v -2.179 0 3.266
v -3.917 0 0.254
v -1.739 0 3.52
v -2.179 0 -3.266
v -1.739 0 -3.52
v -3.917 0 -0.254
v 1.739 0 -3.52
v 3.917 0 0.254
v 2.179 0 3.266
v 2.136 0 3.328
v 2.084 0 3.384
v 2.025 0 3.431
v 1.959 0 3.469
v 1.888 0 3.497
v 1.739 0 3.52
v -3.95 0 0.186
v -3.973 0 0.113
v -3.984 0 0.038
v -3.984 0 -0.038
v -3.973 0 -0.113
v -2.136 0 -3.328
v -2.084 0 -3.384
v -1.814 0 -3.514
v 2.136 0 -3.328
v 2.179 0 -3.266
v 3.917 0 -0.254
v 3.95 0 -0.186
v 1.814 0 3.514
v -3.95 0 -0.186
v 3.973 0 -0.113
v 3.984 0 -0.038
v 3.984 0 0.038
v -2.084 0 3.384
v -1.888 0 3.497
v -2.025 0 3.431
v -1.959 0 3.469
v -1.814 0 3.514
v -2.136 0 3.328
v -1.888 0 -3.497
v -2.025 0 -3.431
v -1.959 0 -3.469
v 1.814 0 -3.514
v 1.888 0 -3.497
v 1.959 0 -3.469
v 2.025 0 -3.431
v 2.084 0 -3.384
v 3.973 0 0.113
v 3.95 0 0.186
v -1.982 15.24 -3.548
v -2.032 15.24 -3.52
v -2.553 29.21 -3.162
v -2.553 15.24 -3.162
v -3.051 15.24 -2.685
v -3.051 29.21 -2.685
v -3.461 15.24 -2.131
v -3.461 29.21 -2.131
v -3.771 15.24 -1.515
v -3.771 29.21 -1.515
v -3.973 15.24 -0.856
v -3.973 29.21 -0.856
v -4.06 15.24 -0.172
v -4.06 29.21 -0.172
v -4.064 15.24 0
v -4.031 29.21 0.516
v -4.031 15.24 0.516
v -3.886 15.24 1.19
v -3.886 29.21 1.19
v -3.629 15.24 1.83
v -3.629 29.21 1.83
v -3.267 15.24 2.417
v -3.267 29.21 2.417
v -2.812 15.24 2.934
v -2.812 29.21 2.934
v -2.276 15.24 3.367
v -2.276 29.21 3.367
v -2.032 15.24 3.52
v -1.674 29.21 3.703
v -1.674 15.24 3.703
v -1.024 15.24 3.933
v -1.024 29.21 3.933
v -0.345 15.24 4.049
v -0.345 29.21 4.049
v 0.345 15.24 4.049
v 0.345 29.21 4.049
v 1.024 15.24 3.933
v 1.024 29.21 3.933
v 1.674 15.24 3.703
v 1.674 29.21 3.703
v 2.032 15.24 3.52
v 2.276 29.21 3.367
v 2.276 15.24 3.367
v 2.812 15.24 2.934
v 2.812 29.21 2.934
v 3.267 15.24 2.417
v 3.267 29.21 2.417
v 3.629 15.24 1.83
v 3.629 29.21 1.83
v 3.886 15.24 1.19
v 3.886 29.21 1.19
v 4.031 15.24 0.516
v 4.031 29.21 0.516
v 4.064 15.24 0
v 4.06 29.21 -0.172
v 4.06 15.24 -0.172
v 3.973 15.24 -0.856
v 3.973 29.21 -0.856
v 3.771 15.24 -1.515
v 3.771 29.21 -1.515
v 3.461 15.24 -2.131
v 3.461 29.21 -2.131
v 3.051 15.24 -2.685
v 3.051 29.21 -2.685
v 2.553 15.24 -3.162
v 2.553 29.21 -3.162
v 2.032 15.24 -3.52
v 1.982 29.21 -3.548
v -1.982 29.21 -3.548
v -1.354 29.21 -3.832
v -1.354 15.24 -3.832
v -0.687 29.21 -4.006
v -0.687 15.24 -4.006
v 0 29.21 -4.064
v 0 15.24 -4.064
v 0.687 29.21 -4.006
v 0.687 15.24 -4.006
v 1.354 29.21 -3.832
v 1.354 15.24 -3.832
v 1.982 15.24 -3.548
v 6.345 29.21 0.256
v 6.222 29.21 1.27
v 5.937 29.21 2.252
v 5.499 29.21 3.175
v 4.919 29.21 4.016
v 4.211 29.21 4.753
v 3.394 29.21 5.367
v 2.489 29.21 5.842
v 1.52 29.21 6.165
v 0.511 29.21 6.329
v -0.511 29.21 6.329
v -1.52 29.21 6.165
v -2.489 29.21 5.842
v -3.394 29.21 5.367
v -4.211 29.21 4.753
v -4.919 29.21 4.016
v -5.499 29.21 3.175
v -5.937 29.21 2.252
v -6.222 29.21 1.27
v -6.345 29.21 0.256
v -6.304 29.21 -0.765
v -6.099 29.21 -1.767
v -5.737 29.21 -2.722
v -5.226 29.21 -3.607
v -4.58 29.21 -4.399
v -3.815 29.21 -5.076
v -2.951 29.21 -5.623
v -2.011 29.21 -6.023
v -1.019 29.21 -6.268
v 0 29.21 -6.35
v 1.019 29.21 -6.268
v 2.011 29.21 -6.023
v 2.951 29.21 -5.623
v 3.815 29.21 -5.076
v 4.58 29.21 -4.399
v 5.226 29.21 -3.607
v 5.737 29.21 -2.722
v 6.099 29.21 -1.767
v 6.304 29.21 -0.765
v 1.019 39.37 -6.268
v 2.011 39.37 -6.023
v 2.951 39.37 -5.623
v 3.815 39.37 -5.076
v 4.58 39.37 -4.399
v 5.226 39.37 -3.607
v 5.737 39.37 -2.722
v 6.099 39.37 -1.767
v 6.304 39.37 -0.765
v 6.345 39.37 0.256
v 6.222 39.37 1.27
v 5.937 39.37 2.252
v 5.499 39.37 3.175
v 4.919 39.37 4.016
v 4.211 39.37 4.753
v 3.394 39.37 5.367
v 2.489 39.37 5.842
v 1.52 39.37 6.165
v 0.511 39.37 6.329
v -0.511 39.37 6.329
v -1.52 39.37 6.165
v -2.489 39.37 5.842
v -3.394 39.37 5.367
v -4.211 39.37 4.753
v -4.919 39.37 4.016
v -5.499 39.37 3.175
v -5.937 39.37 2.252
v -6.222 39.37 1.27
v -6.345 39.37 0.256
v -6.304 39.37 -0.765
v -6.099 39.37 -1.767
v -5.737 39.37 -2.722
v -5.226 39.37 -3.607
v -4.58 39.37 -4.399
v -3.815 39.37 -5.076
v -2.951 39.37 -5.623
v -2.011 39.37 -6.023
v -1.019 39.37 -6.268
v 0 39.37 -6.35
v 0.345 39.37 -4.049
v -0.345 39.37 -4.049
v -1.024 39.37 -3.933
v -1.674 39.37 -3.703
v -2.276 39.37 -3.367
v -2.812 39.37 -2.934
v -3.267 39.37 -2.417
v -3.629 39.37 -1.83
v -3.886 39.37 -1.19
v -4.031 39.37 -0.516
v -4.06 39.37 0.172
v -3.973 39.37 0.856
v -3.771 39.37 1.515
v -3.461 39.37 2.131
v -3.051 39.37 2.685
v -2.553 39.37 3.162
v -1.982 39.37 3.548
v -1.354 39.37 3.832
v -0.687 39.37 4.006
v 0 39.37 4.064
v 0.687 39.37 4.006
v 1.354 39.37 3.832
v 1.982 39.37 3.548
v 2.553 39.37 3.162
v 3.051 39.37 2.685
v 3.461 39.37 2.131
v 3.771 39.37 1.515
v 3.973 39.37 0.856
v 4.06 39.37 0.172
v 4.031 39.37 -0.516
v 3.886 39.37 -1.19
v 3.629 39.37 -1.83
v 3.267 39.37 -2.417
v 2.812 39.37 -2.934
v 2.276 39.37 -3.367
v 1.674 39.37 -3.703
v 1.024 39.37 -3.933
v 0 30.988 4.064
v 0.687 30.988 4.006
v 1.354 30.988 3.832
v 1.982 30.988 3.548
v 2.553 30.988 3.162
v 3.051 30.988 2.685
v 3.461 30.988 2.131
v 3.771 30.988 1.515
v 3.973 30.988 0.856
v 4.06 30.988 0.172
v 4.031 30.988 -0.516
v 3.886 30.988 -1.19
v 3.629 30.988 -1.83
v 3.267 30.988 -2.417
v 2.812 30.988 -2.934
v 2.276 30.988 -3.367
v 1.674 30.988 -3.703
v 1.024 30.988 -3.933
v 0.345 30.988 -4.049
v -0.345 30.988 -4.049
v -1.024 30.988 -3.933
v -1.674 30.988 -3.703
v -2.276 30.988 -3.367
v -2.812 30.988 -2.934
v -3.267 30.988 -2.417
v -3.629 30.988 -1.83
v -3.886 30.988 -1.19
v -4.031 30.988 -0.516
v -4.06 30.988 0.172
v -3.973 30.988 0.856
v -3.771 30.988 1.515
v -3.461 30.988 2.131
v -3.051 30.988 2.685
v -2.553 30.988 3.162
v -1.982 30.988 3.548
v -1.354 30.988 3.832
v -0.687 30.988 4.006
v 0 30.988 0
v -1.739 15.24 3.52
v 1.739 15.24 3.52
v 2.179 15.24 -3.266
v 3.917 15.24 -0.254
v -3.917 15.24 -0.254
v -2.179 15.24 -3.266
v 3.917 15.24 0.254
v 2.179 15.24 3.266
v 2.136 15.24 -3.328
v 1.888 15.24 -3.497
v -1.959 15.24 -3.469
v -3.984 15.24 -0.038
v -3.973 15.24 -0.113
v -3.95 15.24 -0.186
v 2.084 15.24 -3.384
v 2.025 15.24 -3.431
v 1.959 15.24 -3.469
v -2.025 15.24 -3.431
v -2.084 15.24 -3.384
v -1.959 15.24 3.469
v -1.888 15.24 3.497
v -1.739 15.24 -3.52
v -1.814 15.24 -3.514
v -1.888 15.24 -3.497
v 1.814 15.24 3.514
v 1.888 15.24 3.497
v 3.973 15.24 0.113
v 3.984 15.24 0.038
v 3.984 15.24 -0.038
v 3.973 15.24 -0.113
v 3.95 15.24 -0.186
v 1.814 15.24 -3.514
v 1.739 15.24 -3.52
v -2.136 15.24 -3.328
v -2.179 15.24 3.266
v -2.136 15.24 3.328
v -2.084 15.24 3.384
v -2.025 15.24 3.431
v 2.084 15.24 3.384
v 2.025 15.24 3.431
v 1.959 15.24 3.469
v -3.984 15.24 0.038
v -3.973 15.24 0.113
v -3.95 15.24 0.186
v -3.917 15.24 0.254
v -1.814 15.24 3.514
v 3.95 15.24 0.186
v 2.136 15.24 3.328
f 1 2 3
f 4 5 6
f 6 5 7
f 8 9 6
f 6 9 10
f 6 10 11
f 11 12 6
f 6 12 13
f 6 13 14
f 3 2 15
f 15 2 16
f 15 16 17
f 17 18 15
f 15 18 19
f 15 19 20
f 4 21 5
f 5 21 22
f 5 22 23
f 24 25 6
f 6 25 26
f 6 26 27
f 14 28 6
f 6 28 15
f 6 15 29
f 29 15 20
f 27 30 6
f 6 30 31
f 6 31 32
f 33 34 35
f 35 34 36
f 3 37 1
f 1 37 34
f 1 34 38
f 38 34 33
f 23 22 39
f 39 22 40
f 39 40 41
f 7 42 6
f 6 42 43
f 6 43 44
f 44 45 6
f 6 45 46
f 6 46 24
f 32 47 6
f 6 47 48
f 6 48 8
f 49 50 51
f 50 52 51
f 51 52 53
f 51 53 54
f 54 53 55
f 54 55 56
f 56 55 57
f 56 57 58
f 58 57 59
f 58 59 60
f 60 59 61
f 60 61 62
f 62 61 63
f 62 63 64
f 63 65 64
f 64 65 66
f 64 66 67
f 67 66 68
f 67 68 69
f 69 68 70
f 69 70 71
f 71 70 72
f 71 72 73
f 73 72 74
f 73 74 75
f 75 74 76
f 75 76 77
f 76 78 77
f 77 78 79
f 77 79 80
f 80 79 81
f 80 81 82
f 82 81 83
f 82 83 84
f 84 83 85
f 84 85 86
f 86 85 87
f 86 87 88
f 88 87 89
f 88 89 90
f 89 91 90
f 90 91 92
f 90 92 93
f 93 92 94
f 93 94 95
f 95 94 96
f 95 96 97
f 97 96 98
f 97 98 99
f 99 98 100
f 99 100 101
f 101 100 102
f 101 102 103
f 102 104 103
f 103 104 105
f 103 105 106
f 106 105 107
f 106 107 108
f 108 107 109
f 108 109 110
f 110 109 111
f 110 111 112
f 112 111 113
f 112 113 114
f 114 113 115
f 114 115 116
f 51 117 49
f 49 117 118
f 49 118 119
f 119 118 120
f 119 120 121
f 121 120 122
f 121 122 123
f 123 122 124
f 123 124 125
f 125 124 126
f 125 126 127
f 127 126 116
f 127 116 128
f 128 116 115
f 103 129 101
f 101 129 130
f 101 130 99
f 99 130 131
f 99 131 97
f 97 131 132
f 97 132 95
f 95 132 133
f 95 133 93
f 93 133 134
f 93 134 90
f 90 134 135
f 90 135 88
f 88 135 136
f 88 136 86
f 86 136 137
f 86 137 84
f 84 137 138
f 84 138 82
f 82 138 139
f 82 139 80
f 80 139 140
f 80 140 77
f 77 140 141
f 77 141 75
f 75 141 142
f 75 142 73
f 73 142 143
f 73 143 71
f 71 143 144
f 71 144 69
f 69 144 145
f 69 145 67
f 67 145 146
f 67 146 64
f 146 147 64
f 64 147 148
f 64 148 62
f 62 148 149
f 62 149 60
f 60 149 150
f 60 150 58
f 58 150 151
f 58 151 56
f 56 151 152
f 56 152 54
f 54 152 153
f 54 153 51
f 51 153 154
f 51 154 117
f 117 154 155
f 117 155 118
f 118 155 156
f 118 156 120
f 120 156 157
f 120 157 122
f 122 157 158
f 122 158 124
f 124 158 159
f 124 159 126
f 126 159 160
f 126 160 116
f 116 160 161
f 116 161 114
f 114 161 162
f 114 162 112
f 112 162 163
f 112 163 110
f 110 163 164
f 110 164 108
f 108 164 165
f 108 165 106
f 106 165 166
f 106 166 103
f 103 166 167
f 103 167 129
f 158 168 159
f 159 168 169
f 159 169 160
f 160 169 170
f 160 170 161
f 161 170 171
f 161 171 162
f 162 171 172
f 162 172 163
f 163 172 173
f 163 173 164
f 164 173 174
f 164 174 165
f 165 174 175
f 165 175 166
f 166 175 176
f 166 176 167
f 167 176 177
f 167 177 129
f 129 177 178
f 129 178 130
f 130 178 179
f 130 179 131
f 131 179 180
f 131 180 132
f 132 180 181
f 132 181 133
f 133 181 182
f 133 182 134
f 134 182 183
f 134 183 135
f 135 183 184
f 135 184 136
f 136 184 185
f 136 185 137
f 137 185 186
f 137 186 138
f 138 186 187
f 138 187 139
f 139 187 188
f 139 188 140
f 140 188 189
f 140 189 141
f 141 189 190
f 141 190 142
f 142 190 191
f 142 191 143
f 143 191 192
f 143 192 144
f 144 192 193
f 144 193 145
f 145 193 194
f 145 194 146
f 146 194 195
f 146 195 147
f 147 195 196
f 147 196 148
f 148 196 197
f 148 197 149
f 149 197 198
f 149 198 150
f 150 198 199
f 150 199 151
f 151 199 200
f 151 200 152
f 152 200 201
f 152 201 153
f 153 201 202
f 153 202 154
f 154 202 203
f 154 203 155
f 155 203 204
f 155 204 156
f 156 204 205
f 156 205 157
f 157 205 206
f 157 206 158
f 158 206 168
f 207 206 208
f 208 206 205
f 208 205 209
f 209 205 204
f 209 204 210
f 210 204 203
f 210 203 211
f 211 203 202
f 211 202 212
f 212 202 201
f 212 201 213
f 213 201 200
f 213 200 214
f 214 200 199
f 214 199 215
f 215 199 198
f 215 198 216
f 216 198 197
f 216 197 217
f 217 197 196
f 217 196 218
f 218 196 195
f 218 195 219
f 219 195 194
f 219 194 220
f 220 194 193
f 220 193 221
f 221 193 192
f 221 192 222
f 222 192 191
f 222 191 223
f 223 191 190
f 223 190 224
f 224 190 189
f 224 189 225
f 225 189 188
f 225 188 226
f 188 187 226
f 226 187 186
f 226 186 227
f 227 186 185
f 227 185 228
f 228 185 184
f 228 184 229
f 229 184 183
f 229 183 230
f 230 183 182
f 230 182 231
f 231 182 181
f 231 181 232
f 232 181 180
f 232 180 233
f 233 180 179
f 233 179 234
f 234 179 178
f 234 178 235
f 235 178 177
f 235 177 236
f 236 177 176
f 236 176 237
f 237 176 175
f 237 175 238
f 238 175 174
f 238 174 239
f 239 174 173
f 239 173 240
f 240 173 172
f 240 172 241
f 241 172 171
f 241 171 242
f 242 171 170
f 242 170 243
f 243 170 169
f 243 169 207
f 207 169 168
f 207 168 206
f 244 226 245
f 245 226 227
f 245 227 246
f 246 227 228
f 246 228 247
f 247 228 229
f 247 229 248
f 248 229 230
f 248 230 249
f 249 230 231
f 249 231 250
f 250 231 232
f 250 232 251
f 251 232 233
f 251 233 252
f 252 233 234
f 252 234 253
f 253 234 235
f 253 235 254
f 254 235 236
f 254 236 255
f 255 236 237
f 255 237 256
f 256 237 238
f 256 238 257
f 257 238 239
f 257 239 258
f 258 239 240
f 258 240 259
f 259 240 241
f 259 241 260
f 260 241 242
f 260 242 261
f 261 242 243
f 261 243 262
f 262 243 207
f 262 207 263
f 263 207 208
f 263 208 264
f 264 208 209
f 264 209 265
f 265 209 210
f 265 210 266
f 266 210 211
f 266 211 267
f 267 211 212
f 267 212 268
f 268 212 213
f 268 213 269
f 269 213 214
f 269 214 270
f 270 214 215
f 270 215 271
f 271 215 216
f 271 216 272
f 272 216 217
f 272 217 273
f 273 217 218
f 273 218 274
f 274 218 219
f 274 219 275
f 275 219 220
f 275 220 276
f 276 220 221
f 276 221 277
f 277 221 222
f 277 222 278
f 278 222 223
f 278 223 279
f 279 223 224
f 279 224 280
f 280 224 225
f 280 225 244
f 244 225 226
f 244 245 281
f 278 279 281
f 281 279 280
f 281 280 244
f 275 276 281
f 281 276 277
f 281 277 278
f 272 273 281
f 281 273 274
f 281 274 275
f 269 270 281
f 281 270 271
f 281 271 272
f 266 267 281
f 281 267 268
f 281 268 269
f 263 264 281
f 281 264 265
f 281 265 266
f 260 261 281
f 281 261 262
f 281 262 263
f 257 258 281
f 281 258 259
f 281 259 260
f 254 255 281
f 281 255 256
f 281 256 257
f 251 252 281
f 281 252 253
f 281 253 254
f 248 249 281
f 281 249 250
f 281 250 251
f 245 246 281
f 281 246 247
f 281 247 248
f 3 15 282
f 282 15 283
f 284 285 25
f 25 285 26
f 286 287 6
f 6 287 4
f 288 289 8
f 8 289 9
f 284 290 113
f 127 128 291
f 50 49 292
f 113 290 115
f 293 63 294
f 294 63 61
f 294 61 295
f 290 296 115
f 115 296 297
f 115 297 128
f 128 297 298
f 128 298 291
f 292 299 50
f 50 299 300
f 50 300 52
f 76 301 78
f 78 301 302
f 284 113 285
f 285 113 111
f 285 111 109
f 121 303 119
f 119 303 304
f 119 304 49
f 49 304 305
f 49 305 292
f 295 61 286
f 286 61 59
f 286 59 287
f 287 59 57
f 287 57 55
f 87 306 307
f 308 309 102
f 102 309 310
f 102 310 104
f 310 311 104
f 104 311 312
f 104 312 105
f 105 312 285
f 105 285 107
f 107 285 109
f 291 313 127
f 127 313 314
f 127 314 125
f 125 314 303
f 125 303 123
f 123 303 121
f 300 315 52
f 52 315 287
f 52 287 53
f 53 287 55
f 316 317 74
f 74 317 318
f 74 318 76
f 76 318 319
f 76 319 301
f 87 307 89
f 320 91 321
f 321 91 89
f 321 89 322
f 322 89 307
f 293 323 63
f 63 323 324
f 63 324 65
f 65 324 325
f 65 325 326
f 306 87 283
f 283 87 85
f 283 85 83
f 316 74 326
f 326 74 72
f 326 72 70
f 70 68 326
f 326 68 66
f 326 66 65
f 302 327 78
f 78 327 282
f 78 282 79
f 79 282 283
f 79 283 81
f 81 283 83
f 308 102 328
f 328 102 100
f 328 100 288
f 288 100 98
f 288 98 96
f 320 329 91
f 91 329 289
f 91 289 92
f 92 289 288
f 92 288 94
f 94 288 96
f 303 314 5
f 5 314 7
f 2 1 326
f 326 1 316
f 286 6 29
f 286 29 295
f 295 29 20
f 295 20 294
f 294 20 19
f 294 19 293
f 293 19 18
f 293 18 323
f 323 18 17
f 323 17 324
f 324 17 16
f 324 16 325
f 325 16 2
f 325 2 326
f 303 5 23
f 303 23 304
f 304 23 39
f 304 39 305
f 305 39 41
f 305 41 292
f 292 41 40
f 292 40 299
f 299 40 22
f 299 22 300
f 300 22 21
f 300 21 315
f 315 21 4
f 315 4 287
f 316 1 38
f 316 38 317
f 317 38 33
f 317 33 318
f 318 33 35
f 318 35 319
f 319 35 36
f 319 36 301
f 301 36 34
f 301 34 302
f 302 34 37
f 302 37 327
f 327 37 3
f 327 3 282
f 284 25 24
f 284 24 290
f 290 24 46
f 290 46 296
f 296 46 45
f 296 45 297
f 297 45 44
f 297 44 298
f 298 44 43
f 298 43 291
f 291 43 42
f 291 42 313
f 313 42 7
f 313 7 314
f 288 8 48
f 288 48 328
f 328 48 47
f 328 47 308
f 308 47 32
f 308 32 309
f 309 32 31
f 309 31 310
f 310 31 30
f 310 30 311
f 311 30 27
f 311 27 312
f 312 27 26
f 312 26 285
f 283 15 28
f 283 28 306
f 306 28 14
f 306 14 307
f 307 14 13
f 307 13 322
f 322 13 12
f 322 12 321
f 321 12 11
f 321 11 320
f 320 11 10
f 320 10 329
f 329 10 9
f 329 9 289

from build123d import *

# Parameters (mm, degrees)
SKETCH2_R          = 4.064
CUT_EXTRUDE1_DEPTH = 8.382
CUT_EXTRUDE3_START = -15.24
CUT_EXTRUDE3_DEPTH = 15.24
FILLET2_R          = 0.508


with BuildPart() as part:
    # Sketch1 → Revolve1 (revolve)
    with BuildSketch(Plane(origin=(0, 0, 0), x_dir=(0, 0, -1), z_dir=(1, 0, 0))):
        Polygon((0, 0), (4.064, 0), (4.064, 13.97), (4.064, 29.21), (6.35, 29.21), (6.35, 39.37), (0, 39.37), align=None)
    revolve(axis=Axis((0, 0, 0), (0, 1, 0)))

    # Sketch2 → Cut-Extrude1 (cut)
    with BuildSketch(Plane(origin=(0, 39.37, 0), x_dir=(1, 0, 0), z_dir=(0, 1, 0))):
        with Locations(Location((0, 0, 0), (0, 0, 90))):
            Circle(SKETCH2_R)
    extrude(amount=-CUT_EXTRUDE1_DEPTH, mode=Mode.SUBTRACT)

    # Sketch3 → Cut-Extrude3 (cut)
    with BuildSketch(Plane.XZ.offset(CUT_EXTRUDE3_START)):
        with BuildLine():
            Line((-2.032, 3.519527241), (2.032, 3.519527241))
            ThreePointArc((2.032, 3.519527241), (0, 4.064), (-2.032, 3.519527241))
        make_face()
        with BuildLine():
            ThreePointArc((4.064, 0), (3.519527241, 2.032), (2.032, 3.519527241))
            Line((2.032, 3.519527241), (4.064, 0))
        make_face()
        with BuildLine():
            ThreePointArc((2.032, -3.519527241), (3.519527241, -2.032), (4.064, 0))
            Line((4.064, 0), (2.032, -3.519527241))
        make_face()
        with BuildLine():
            ThreePointArc((-2.032, -3.519527241), (0, -4.064), (2.032, -3.519527241))
            Line((2.032, -3.519527241), (-2.032, -3.519527241))
        make_face()
        with BuildLine():
            Line((-2.032, -3.519527241), (-4.064, 0))
            ThreePointArc((-4.064, 0), (-3.519527241, -2.032), (-2.032, -3.519527241))
        make_face()
        with BuildLine():
            Line((-4.064, 0), (-2.032, 3.519527241))
            ThreePointArc((-2.032, 3.519527241), (-3.519527241, 2.032), (-4.064, 0))
        make_face()
    extrude(amount=CUT_EXTRUDE3_DEPTH, mode=Mode.SUBTRACT)

    # Fillet2
    fillet2_edges = [part.edges().sort_by_distance(p)[0] for p in [
        (-4.064, 7.62, 0),
        (2.032, 7.62, -3.519527241),
        (2.032, 7.62, 3.519527241),
        (-2.032, 7.62, 3.519527241),
        (4.064, 7.62, 0),
        (-2.032, 7.62, -3.519527241),
    ]]
    fillet(fillet2_edges, radius=FILLET2_R)


solid = part.part
